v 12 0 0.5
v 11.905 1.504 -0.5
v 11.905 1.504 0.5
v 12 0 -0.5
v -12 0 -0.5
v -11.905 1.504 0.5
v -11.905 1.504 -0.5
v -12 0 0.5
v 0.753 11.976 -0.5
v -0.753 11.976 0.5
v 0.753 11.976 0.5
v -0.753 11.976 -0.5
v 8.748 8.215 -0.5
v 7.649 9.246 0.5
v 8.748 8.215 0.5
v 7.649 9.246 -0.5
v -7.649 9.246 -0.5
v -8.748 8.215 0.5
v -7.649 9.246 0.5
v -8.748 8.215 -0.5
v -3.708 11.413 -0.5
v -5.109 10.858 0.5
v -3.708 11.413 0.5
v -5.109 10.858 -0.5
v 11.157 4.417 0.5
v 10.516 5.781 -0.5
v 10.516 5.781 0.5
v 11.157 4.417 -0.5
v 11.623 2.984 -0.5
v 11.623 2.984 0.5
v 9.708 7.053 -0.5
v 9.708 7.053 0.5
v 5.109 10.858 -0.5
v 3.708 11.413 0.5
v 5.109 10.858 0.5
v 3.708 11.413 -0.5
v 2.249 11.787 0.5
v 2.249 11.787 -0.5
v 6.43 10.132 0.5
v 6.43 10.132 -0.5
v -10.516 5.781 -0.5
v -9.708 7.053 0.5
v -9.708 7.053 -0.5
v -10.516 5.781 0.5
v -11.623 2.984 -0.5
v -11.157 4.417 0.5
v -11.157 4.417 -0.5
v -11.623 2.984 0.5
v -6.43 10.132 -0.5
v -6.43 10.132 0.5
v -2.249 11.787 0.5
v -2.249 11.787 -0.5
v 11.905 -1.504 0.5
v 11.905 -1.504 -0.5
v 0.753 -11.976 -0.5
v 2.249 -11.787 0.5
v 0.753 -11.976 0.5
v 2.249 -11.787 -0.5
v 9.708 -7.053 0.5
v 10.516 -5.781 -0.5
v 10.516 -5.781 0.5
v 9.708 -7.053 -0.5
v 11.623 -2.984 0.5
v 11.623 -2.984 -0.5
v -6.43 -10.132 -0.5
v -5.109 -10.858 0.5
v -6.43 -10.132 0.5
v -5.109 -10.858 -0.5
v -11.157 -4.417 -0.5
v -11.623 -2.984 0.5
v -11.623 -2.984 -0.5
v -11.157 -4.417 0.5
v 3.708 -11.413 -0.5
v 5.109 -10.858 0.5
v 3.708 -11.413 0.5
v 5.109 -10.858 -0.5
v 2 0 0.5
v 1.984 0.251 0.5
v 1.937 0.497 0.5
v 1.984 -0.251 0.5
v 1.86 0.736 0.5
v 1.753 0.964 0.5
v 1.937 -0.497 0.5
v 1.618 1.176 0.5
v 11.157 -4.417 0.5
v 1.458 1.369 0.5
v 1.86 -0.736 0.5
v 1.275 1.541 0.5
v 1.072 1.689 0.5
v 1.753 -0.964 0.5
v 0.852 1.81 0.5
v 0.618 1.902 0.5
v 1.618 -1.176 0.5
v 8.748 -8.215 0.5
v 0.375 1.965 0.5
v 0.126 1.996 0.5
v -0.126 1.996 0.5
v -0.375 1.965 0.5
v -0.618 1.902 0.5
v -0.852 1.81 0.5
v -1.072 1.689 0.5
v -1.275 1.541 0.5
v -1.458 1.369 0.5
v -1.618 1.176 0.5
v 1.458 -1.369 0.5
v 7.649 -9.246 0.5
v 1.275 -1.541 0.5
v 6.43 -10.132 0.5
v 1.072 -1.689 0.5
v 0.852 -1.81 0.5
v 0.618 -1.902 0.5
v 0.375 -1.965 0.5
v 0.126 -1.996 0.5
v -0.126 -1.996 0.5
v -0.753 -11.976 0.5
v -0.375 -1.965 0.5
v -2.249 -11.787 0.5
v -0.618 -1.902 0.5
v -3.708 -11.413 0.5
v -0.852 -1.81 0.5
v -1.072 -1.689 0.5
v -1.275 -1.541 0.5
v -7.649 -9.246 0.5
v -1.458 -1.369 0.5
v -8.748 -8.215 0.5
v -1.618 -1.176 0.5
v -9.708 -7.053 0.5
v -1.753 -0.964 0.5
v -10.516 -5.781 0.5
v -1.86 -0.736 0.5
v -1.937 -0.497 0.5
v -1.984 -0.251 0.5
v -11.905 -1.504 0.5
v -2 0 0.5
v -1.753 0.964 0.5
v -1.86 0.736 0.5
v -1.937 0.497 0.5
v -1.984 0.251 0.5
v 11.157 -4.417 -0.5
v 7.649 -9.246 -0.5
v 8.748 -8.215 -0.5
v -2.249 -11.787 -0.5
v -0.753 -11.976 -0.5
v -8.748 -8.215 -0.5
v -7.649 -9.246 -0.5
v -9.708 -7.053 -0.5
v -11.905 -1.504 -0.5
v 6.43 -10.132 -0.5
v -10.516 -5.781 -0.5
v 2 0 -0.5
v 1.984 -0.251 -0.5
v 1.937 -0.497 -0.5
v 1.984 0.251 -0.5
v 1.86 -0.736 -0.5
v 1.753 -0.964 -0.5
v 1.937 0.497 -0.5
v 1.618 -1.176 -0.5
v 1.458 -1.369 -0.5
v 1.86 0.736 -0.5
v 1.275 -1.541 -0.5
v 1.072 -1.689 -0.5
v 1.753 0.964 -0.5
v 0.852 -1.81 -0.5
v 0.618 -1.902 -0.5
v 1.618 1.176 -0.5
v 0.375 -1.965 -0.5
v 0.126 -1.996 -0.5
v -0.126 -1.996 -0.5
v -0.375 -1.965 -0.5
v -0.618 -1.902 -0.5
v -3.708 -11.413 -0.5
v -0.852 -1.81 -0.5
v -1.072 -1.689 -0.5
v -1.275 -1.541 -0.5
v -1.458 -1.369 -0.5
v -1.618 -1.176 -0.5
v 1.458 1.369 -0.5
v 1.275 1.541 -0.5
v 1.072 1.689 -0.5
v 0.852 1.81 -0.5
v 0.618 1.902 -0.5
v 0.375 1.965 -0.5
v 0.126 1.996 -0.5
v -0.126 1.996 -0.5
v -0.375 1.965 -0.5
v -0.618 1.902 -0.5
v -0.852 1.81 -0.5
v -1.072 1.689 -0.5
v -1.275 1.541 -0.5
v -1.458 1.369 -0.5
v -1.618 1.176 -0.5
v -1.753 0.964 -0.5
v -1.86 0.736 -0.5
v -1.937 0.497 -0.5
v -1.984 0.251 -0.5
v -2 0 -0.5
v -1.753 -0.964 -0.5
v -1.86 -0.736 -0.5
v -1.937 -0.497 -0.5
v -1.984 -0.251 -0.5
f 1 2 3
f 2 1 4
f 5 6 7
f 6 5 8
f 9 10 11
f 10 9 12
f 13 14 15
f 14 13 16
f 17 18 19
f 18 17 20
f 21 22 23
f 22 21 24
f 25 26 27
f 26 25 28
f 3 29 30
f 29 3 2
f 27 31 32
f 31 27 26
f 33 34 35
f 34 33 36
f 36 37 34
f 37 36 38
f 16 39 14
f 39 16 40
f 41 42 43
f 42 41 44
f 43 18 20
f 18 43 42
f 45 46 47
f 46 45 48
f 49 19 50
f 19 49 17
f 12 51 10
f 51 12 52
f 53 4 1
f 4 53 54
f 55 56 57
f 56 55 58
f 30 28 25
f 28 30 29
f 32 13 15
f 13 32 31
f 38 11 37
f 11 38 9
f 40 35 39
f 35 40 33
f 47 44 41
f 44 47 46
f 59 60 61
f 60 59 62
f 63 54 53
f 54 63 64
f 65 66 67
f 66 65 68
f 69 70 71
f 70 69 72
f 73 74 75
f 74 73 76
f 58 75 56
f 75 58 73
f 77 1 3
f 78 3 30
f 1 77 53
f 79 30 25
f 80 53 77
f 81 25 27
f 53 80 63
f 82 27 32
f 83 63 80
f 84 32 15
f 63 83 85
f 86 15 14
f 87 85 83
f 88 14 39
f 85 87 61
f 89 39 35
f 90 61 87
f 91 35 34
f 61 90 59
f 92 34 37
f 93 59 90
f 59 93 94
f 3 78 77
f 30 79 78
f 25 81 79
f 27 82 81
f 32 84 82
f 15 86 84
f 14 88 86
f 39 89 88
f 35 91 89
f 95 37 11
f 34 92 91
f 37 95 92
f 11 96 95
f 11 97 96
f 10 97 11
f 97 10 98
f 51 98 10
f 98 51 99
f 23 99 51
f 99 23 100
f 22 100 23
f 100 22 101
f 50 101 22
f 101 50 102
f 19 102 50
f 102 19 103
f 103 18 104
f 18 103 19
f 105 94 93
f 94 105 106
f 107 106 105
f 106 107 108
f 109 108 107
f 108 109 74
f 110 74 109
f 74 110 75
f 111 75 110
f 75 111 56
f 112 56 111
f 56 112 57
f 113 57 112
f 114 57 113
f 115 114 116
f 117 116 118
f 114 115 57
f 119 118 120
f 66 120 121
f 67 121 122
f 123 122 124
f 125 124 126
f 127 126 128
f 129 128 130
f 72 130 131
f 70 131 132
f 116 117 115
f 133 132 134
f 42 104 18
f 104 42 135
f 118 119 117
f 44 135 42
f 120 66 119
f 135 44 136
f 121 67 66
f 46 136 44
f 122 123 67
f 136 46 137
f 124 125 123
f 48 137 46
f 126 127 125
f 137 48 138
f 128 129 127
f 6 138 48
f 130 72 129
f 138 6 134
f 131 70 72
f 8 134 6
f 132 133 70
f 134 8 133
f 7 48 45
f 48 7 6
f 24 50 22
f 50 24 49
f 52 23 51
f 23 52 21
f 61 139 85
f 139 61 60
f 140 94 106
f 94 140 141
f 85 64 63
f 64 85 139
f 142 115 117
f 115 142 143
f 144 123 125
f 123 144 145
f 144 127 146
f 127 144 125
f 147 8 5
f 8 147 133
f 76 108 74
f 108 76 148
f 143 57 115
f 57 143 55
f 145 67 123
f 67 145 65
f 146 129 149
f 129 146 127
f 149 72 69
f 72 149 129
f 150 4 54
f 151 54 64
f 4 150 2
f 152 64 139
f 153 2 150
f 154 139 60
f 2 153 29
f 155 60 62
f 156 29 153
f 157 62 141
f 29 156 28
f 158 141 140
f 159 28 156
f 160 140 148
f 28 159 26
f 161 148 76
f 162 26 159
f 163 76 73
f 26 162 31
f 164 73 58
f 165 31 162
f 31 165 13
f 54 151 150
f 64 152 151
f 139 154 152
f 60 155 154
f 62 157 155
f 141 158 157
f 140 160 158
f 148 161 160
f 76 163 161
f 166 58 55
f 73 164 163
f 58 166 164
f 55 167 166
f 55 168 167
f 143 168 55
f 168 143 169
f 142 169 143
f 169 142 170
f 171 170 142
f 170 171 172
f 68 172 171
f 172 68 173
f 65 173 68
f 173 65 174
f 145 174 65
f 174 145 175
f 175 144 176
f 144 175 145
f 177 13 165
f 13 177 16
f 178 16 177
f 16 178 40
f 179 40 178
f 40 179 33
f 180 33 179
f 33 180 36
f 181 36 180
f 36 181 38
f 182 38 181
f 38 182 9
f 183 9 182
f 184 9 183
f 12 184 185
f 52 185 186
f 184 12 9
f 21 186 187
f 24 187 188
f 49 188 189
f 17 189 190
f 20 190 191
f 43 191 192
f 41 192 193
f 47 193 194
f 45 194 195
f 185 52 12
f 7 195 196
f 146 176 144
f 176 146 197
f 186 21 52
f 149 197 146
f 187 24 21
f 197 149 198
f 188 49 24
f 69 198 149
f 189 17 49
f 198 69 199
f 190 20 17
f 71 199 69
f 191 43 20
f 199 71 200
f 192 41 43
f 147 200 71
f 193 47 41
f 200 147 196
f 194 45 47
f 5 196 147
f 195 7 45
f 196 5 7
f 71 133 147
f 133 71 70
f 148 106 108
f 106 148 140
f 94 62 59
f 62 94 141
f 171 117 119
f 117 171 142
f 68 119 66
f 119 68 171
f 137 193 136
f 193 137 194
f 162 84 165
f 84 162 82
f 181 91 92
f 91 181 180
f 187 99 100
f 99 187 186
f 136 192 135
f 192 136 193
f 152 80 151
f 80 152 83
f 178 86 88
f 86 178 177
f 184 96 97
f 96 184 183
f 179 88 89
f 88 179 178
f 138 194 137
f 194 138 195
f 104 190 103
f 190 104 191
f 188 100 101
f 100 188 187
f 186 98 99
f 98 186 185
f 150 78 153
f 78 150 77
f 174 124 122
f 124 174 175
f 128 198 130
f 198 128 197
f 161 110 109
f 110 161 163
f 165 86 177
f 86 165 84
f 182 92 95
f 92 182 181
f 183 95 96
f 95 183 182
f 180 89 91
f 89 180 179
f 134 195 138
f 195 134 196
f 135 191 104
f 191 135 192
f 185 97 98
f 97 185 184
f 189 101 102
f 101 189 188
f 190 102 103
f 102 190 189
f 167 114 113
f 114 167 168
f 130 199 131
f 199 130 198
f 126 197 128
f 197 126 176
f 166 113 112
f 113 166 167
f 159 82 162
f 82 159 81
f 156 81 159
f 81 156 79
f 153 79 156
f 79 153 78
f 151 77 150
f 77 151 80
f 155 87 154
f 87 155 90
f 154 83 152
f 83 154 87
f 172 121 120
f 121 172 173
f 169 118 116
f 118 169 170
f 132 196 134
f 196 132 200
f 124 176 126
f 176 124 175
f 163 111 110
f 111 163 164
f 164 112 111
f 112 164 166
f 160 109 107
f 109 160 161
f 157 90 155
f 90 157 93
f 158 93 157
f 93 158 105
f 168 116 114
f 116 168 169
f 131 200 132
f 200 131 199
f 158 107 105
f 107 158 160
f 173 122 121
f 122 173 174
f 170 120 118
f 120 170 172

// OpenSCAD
$fn = 50;


difference() {
	union() {
		translate(v = [0, 0, -0.5000000000]) {
			cylinder(h = 1, r = 12.0000000000);
		}
	}
	union() {
		translate(v = [0, 0, -100.0000000000]) {
			cylinder(h = 200, r = 2.0000000000);
		}
	}
}
